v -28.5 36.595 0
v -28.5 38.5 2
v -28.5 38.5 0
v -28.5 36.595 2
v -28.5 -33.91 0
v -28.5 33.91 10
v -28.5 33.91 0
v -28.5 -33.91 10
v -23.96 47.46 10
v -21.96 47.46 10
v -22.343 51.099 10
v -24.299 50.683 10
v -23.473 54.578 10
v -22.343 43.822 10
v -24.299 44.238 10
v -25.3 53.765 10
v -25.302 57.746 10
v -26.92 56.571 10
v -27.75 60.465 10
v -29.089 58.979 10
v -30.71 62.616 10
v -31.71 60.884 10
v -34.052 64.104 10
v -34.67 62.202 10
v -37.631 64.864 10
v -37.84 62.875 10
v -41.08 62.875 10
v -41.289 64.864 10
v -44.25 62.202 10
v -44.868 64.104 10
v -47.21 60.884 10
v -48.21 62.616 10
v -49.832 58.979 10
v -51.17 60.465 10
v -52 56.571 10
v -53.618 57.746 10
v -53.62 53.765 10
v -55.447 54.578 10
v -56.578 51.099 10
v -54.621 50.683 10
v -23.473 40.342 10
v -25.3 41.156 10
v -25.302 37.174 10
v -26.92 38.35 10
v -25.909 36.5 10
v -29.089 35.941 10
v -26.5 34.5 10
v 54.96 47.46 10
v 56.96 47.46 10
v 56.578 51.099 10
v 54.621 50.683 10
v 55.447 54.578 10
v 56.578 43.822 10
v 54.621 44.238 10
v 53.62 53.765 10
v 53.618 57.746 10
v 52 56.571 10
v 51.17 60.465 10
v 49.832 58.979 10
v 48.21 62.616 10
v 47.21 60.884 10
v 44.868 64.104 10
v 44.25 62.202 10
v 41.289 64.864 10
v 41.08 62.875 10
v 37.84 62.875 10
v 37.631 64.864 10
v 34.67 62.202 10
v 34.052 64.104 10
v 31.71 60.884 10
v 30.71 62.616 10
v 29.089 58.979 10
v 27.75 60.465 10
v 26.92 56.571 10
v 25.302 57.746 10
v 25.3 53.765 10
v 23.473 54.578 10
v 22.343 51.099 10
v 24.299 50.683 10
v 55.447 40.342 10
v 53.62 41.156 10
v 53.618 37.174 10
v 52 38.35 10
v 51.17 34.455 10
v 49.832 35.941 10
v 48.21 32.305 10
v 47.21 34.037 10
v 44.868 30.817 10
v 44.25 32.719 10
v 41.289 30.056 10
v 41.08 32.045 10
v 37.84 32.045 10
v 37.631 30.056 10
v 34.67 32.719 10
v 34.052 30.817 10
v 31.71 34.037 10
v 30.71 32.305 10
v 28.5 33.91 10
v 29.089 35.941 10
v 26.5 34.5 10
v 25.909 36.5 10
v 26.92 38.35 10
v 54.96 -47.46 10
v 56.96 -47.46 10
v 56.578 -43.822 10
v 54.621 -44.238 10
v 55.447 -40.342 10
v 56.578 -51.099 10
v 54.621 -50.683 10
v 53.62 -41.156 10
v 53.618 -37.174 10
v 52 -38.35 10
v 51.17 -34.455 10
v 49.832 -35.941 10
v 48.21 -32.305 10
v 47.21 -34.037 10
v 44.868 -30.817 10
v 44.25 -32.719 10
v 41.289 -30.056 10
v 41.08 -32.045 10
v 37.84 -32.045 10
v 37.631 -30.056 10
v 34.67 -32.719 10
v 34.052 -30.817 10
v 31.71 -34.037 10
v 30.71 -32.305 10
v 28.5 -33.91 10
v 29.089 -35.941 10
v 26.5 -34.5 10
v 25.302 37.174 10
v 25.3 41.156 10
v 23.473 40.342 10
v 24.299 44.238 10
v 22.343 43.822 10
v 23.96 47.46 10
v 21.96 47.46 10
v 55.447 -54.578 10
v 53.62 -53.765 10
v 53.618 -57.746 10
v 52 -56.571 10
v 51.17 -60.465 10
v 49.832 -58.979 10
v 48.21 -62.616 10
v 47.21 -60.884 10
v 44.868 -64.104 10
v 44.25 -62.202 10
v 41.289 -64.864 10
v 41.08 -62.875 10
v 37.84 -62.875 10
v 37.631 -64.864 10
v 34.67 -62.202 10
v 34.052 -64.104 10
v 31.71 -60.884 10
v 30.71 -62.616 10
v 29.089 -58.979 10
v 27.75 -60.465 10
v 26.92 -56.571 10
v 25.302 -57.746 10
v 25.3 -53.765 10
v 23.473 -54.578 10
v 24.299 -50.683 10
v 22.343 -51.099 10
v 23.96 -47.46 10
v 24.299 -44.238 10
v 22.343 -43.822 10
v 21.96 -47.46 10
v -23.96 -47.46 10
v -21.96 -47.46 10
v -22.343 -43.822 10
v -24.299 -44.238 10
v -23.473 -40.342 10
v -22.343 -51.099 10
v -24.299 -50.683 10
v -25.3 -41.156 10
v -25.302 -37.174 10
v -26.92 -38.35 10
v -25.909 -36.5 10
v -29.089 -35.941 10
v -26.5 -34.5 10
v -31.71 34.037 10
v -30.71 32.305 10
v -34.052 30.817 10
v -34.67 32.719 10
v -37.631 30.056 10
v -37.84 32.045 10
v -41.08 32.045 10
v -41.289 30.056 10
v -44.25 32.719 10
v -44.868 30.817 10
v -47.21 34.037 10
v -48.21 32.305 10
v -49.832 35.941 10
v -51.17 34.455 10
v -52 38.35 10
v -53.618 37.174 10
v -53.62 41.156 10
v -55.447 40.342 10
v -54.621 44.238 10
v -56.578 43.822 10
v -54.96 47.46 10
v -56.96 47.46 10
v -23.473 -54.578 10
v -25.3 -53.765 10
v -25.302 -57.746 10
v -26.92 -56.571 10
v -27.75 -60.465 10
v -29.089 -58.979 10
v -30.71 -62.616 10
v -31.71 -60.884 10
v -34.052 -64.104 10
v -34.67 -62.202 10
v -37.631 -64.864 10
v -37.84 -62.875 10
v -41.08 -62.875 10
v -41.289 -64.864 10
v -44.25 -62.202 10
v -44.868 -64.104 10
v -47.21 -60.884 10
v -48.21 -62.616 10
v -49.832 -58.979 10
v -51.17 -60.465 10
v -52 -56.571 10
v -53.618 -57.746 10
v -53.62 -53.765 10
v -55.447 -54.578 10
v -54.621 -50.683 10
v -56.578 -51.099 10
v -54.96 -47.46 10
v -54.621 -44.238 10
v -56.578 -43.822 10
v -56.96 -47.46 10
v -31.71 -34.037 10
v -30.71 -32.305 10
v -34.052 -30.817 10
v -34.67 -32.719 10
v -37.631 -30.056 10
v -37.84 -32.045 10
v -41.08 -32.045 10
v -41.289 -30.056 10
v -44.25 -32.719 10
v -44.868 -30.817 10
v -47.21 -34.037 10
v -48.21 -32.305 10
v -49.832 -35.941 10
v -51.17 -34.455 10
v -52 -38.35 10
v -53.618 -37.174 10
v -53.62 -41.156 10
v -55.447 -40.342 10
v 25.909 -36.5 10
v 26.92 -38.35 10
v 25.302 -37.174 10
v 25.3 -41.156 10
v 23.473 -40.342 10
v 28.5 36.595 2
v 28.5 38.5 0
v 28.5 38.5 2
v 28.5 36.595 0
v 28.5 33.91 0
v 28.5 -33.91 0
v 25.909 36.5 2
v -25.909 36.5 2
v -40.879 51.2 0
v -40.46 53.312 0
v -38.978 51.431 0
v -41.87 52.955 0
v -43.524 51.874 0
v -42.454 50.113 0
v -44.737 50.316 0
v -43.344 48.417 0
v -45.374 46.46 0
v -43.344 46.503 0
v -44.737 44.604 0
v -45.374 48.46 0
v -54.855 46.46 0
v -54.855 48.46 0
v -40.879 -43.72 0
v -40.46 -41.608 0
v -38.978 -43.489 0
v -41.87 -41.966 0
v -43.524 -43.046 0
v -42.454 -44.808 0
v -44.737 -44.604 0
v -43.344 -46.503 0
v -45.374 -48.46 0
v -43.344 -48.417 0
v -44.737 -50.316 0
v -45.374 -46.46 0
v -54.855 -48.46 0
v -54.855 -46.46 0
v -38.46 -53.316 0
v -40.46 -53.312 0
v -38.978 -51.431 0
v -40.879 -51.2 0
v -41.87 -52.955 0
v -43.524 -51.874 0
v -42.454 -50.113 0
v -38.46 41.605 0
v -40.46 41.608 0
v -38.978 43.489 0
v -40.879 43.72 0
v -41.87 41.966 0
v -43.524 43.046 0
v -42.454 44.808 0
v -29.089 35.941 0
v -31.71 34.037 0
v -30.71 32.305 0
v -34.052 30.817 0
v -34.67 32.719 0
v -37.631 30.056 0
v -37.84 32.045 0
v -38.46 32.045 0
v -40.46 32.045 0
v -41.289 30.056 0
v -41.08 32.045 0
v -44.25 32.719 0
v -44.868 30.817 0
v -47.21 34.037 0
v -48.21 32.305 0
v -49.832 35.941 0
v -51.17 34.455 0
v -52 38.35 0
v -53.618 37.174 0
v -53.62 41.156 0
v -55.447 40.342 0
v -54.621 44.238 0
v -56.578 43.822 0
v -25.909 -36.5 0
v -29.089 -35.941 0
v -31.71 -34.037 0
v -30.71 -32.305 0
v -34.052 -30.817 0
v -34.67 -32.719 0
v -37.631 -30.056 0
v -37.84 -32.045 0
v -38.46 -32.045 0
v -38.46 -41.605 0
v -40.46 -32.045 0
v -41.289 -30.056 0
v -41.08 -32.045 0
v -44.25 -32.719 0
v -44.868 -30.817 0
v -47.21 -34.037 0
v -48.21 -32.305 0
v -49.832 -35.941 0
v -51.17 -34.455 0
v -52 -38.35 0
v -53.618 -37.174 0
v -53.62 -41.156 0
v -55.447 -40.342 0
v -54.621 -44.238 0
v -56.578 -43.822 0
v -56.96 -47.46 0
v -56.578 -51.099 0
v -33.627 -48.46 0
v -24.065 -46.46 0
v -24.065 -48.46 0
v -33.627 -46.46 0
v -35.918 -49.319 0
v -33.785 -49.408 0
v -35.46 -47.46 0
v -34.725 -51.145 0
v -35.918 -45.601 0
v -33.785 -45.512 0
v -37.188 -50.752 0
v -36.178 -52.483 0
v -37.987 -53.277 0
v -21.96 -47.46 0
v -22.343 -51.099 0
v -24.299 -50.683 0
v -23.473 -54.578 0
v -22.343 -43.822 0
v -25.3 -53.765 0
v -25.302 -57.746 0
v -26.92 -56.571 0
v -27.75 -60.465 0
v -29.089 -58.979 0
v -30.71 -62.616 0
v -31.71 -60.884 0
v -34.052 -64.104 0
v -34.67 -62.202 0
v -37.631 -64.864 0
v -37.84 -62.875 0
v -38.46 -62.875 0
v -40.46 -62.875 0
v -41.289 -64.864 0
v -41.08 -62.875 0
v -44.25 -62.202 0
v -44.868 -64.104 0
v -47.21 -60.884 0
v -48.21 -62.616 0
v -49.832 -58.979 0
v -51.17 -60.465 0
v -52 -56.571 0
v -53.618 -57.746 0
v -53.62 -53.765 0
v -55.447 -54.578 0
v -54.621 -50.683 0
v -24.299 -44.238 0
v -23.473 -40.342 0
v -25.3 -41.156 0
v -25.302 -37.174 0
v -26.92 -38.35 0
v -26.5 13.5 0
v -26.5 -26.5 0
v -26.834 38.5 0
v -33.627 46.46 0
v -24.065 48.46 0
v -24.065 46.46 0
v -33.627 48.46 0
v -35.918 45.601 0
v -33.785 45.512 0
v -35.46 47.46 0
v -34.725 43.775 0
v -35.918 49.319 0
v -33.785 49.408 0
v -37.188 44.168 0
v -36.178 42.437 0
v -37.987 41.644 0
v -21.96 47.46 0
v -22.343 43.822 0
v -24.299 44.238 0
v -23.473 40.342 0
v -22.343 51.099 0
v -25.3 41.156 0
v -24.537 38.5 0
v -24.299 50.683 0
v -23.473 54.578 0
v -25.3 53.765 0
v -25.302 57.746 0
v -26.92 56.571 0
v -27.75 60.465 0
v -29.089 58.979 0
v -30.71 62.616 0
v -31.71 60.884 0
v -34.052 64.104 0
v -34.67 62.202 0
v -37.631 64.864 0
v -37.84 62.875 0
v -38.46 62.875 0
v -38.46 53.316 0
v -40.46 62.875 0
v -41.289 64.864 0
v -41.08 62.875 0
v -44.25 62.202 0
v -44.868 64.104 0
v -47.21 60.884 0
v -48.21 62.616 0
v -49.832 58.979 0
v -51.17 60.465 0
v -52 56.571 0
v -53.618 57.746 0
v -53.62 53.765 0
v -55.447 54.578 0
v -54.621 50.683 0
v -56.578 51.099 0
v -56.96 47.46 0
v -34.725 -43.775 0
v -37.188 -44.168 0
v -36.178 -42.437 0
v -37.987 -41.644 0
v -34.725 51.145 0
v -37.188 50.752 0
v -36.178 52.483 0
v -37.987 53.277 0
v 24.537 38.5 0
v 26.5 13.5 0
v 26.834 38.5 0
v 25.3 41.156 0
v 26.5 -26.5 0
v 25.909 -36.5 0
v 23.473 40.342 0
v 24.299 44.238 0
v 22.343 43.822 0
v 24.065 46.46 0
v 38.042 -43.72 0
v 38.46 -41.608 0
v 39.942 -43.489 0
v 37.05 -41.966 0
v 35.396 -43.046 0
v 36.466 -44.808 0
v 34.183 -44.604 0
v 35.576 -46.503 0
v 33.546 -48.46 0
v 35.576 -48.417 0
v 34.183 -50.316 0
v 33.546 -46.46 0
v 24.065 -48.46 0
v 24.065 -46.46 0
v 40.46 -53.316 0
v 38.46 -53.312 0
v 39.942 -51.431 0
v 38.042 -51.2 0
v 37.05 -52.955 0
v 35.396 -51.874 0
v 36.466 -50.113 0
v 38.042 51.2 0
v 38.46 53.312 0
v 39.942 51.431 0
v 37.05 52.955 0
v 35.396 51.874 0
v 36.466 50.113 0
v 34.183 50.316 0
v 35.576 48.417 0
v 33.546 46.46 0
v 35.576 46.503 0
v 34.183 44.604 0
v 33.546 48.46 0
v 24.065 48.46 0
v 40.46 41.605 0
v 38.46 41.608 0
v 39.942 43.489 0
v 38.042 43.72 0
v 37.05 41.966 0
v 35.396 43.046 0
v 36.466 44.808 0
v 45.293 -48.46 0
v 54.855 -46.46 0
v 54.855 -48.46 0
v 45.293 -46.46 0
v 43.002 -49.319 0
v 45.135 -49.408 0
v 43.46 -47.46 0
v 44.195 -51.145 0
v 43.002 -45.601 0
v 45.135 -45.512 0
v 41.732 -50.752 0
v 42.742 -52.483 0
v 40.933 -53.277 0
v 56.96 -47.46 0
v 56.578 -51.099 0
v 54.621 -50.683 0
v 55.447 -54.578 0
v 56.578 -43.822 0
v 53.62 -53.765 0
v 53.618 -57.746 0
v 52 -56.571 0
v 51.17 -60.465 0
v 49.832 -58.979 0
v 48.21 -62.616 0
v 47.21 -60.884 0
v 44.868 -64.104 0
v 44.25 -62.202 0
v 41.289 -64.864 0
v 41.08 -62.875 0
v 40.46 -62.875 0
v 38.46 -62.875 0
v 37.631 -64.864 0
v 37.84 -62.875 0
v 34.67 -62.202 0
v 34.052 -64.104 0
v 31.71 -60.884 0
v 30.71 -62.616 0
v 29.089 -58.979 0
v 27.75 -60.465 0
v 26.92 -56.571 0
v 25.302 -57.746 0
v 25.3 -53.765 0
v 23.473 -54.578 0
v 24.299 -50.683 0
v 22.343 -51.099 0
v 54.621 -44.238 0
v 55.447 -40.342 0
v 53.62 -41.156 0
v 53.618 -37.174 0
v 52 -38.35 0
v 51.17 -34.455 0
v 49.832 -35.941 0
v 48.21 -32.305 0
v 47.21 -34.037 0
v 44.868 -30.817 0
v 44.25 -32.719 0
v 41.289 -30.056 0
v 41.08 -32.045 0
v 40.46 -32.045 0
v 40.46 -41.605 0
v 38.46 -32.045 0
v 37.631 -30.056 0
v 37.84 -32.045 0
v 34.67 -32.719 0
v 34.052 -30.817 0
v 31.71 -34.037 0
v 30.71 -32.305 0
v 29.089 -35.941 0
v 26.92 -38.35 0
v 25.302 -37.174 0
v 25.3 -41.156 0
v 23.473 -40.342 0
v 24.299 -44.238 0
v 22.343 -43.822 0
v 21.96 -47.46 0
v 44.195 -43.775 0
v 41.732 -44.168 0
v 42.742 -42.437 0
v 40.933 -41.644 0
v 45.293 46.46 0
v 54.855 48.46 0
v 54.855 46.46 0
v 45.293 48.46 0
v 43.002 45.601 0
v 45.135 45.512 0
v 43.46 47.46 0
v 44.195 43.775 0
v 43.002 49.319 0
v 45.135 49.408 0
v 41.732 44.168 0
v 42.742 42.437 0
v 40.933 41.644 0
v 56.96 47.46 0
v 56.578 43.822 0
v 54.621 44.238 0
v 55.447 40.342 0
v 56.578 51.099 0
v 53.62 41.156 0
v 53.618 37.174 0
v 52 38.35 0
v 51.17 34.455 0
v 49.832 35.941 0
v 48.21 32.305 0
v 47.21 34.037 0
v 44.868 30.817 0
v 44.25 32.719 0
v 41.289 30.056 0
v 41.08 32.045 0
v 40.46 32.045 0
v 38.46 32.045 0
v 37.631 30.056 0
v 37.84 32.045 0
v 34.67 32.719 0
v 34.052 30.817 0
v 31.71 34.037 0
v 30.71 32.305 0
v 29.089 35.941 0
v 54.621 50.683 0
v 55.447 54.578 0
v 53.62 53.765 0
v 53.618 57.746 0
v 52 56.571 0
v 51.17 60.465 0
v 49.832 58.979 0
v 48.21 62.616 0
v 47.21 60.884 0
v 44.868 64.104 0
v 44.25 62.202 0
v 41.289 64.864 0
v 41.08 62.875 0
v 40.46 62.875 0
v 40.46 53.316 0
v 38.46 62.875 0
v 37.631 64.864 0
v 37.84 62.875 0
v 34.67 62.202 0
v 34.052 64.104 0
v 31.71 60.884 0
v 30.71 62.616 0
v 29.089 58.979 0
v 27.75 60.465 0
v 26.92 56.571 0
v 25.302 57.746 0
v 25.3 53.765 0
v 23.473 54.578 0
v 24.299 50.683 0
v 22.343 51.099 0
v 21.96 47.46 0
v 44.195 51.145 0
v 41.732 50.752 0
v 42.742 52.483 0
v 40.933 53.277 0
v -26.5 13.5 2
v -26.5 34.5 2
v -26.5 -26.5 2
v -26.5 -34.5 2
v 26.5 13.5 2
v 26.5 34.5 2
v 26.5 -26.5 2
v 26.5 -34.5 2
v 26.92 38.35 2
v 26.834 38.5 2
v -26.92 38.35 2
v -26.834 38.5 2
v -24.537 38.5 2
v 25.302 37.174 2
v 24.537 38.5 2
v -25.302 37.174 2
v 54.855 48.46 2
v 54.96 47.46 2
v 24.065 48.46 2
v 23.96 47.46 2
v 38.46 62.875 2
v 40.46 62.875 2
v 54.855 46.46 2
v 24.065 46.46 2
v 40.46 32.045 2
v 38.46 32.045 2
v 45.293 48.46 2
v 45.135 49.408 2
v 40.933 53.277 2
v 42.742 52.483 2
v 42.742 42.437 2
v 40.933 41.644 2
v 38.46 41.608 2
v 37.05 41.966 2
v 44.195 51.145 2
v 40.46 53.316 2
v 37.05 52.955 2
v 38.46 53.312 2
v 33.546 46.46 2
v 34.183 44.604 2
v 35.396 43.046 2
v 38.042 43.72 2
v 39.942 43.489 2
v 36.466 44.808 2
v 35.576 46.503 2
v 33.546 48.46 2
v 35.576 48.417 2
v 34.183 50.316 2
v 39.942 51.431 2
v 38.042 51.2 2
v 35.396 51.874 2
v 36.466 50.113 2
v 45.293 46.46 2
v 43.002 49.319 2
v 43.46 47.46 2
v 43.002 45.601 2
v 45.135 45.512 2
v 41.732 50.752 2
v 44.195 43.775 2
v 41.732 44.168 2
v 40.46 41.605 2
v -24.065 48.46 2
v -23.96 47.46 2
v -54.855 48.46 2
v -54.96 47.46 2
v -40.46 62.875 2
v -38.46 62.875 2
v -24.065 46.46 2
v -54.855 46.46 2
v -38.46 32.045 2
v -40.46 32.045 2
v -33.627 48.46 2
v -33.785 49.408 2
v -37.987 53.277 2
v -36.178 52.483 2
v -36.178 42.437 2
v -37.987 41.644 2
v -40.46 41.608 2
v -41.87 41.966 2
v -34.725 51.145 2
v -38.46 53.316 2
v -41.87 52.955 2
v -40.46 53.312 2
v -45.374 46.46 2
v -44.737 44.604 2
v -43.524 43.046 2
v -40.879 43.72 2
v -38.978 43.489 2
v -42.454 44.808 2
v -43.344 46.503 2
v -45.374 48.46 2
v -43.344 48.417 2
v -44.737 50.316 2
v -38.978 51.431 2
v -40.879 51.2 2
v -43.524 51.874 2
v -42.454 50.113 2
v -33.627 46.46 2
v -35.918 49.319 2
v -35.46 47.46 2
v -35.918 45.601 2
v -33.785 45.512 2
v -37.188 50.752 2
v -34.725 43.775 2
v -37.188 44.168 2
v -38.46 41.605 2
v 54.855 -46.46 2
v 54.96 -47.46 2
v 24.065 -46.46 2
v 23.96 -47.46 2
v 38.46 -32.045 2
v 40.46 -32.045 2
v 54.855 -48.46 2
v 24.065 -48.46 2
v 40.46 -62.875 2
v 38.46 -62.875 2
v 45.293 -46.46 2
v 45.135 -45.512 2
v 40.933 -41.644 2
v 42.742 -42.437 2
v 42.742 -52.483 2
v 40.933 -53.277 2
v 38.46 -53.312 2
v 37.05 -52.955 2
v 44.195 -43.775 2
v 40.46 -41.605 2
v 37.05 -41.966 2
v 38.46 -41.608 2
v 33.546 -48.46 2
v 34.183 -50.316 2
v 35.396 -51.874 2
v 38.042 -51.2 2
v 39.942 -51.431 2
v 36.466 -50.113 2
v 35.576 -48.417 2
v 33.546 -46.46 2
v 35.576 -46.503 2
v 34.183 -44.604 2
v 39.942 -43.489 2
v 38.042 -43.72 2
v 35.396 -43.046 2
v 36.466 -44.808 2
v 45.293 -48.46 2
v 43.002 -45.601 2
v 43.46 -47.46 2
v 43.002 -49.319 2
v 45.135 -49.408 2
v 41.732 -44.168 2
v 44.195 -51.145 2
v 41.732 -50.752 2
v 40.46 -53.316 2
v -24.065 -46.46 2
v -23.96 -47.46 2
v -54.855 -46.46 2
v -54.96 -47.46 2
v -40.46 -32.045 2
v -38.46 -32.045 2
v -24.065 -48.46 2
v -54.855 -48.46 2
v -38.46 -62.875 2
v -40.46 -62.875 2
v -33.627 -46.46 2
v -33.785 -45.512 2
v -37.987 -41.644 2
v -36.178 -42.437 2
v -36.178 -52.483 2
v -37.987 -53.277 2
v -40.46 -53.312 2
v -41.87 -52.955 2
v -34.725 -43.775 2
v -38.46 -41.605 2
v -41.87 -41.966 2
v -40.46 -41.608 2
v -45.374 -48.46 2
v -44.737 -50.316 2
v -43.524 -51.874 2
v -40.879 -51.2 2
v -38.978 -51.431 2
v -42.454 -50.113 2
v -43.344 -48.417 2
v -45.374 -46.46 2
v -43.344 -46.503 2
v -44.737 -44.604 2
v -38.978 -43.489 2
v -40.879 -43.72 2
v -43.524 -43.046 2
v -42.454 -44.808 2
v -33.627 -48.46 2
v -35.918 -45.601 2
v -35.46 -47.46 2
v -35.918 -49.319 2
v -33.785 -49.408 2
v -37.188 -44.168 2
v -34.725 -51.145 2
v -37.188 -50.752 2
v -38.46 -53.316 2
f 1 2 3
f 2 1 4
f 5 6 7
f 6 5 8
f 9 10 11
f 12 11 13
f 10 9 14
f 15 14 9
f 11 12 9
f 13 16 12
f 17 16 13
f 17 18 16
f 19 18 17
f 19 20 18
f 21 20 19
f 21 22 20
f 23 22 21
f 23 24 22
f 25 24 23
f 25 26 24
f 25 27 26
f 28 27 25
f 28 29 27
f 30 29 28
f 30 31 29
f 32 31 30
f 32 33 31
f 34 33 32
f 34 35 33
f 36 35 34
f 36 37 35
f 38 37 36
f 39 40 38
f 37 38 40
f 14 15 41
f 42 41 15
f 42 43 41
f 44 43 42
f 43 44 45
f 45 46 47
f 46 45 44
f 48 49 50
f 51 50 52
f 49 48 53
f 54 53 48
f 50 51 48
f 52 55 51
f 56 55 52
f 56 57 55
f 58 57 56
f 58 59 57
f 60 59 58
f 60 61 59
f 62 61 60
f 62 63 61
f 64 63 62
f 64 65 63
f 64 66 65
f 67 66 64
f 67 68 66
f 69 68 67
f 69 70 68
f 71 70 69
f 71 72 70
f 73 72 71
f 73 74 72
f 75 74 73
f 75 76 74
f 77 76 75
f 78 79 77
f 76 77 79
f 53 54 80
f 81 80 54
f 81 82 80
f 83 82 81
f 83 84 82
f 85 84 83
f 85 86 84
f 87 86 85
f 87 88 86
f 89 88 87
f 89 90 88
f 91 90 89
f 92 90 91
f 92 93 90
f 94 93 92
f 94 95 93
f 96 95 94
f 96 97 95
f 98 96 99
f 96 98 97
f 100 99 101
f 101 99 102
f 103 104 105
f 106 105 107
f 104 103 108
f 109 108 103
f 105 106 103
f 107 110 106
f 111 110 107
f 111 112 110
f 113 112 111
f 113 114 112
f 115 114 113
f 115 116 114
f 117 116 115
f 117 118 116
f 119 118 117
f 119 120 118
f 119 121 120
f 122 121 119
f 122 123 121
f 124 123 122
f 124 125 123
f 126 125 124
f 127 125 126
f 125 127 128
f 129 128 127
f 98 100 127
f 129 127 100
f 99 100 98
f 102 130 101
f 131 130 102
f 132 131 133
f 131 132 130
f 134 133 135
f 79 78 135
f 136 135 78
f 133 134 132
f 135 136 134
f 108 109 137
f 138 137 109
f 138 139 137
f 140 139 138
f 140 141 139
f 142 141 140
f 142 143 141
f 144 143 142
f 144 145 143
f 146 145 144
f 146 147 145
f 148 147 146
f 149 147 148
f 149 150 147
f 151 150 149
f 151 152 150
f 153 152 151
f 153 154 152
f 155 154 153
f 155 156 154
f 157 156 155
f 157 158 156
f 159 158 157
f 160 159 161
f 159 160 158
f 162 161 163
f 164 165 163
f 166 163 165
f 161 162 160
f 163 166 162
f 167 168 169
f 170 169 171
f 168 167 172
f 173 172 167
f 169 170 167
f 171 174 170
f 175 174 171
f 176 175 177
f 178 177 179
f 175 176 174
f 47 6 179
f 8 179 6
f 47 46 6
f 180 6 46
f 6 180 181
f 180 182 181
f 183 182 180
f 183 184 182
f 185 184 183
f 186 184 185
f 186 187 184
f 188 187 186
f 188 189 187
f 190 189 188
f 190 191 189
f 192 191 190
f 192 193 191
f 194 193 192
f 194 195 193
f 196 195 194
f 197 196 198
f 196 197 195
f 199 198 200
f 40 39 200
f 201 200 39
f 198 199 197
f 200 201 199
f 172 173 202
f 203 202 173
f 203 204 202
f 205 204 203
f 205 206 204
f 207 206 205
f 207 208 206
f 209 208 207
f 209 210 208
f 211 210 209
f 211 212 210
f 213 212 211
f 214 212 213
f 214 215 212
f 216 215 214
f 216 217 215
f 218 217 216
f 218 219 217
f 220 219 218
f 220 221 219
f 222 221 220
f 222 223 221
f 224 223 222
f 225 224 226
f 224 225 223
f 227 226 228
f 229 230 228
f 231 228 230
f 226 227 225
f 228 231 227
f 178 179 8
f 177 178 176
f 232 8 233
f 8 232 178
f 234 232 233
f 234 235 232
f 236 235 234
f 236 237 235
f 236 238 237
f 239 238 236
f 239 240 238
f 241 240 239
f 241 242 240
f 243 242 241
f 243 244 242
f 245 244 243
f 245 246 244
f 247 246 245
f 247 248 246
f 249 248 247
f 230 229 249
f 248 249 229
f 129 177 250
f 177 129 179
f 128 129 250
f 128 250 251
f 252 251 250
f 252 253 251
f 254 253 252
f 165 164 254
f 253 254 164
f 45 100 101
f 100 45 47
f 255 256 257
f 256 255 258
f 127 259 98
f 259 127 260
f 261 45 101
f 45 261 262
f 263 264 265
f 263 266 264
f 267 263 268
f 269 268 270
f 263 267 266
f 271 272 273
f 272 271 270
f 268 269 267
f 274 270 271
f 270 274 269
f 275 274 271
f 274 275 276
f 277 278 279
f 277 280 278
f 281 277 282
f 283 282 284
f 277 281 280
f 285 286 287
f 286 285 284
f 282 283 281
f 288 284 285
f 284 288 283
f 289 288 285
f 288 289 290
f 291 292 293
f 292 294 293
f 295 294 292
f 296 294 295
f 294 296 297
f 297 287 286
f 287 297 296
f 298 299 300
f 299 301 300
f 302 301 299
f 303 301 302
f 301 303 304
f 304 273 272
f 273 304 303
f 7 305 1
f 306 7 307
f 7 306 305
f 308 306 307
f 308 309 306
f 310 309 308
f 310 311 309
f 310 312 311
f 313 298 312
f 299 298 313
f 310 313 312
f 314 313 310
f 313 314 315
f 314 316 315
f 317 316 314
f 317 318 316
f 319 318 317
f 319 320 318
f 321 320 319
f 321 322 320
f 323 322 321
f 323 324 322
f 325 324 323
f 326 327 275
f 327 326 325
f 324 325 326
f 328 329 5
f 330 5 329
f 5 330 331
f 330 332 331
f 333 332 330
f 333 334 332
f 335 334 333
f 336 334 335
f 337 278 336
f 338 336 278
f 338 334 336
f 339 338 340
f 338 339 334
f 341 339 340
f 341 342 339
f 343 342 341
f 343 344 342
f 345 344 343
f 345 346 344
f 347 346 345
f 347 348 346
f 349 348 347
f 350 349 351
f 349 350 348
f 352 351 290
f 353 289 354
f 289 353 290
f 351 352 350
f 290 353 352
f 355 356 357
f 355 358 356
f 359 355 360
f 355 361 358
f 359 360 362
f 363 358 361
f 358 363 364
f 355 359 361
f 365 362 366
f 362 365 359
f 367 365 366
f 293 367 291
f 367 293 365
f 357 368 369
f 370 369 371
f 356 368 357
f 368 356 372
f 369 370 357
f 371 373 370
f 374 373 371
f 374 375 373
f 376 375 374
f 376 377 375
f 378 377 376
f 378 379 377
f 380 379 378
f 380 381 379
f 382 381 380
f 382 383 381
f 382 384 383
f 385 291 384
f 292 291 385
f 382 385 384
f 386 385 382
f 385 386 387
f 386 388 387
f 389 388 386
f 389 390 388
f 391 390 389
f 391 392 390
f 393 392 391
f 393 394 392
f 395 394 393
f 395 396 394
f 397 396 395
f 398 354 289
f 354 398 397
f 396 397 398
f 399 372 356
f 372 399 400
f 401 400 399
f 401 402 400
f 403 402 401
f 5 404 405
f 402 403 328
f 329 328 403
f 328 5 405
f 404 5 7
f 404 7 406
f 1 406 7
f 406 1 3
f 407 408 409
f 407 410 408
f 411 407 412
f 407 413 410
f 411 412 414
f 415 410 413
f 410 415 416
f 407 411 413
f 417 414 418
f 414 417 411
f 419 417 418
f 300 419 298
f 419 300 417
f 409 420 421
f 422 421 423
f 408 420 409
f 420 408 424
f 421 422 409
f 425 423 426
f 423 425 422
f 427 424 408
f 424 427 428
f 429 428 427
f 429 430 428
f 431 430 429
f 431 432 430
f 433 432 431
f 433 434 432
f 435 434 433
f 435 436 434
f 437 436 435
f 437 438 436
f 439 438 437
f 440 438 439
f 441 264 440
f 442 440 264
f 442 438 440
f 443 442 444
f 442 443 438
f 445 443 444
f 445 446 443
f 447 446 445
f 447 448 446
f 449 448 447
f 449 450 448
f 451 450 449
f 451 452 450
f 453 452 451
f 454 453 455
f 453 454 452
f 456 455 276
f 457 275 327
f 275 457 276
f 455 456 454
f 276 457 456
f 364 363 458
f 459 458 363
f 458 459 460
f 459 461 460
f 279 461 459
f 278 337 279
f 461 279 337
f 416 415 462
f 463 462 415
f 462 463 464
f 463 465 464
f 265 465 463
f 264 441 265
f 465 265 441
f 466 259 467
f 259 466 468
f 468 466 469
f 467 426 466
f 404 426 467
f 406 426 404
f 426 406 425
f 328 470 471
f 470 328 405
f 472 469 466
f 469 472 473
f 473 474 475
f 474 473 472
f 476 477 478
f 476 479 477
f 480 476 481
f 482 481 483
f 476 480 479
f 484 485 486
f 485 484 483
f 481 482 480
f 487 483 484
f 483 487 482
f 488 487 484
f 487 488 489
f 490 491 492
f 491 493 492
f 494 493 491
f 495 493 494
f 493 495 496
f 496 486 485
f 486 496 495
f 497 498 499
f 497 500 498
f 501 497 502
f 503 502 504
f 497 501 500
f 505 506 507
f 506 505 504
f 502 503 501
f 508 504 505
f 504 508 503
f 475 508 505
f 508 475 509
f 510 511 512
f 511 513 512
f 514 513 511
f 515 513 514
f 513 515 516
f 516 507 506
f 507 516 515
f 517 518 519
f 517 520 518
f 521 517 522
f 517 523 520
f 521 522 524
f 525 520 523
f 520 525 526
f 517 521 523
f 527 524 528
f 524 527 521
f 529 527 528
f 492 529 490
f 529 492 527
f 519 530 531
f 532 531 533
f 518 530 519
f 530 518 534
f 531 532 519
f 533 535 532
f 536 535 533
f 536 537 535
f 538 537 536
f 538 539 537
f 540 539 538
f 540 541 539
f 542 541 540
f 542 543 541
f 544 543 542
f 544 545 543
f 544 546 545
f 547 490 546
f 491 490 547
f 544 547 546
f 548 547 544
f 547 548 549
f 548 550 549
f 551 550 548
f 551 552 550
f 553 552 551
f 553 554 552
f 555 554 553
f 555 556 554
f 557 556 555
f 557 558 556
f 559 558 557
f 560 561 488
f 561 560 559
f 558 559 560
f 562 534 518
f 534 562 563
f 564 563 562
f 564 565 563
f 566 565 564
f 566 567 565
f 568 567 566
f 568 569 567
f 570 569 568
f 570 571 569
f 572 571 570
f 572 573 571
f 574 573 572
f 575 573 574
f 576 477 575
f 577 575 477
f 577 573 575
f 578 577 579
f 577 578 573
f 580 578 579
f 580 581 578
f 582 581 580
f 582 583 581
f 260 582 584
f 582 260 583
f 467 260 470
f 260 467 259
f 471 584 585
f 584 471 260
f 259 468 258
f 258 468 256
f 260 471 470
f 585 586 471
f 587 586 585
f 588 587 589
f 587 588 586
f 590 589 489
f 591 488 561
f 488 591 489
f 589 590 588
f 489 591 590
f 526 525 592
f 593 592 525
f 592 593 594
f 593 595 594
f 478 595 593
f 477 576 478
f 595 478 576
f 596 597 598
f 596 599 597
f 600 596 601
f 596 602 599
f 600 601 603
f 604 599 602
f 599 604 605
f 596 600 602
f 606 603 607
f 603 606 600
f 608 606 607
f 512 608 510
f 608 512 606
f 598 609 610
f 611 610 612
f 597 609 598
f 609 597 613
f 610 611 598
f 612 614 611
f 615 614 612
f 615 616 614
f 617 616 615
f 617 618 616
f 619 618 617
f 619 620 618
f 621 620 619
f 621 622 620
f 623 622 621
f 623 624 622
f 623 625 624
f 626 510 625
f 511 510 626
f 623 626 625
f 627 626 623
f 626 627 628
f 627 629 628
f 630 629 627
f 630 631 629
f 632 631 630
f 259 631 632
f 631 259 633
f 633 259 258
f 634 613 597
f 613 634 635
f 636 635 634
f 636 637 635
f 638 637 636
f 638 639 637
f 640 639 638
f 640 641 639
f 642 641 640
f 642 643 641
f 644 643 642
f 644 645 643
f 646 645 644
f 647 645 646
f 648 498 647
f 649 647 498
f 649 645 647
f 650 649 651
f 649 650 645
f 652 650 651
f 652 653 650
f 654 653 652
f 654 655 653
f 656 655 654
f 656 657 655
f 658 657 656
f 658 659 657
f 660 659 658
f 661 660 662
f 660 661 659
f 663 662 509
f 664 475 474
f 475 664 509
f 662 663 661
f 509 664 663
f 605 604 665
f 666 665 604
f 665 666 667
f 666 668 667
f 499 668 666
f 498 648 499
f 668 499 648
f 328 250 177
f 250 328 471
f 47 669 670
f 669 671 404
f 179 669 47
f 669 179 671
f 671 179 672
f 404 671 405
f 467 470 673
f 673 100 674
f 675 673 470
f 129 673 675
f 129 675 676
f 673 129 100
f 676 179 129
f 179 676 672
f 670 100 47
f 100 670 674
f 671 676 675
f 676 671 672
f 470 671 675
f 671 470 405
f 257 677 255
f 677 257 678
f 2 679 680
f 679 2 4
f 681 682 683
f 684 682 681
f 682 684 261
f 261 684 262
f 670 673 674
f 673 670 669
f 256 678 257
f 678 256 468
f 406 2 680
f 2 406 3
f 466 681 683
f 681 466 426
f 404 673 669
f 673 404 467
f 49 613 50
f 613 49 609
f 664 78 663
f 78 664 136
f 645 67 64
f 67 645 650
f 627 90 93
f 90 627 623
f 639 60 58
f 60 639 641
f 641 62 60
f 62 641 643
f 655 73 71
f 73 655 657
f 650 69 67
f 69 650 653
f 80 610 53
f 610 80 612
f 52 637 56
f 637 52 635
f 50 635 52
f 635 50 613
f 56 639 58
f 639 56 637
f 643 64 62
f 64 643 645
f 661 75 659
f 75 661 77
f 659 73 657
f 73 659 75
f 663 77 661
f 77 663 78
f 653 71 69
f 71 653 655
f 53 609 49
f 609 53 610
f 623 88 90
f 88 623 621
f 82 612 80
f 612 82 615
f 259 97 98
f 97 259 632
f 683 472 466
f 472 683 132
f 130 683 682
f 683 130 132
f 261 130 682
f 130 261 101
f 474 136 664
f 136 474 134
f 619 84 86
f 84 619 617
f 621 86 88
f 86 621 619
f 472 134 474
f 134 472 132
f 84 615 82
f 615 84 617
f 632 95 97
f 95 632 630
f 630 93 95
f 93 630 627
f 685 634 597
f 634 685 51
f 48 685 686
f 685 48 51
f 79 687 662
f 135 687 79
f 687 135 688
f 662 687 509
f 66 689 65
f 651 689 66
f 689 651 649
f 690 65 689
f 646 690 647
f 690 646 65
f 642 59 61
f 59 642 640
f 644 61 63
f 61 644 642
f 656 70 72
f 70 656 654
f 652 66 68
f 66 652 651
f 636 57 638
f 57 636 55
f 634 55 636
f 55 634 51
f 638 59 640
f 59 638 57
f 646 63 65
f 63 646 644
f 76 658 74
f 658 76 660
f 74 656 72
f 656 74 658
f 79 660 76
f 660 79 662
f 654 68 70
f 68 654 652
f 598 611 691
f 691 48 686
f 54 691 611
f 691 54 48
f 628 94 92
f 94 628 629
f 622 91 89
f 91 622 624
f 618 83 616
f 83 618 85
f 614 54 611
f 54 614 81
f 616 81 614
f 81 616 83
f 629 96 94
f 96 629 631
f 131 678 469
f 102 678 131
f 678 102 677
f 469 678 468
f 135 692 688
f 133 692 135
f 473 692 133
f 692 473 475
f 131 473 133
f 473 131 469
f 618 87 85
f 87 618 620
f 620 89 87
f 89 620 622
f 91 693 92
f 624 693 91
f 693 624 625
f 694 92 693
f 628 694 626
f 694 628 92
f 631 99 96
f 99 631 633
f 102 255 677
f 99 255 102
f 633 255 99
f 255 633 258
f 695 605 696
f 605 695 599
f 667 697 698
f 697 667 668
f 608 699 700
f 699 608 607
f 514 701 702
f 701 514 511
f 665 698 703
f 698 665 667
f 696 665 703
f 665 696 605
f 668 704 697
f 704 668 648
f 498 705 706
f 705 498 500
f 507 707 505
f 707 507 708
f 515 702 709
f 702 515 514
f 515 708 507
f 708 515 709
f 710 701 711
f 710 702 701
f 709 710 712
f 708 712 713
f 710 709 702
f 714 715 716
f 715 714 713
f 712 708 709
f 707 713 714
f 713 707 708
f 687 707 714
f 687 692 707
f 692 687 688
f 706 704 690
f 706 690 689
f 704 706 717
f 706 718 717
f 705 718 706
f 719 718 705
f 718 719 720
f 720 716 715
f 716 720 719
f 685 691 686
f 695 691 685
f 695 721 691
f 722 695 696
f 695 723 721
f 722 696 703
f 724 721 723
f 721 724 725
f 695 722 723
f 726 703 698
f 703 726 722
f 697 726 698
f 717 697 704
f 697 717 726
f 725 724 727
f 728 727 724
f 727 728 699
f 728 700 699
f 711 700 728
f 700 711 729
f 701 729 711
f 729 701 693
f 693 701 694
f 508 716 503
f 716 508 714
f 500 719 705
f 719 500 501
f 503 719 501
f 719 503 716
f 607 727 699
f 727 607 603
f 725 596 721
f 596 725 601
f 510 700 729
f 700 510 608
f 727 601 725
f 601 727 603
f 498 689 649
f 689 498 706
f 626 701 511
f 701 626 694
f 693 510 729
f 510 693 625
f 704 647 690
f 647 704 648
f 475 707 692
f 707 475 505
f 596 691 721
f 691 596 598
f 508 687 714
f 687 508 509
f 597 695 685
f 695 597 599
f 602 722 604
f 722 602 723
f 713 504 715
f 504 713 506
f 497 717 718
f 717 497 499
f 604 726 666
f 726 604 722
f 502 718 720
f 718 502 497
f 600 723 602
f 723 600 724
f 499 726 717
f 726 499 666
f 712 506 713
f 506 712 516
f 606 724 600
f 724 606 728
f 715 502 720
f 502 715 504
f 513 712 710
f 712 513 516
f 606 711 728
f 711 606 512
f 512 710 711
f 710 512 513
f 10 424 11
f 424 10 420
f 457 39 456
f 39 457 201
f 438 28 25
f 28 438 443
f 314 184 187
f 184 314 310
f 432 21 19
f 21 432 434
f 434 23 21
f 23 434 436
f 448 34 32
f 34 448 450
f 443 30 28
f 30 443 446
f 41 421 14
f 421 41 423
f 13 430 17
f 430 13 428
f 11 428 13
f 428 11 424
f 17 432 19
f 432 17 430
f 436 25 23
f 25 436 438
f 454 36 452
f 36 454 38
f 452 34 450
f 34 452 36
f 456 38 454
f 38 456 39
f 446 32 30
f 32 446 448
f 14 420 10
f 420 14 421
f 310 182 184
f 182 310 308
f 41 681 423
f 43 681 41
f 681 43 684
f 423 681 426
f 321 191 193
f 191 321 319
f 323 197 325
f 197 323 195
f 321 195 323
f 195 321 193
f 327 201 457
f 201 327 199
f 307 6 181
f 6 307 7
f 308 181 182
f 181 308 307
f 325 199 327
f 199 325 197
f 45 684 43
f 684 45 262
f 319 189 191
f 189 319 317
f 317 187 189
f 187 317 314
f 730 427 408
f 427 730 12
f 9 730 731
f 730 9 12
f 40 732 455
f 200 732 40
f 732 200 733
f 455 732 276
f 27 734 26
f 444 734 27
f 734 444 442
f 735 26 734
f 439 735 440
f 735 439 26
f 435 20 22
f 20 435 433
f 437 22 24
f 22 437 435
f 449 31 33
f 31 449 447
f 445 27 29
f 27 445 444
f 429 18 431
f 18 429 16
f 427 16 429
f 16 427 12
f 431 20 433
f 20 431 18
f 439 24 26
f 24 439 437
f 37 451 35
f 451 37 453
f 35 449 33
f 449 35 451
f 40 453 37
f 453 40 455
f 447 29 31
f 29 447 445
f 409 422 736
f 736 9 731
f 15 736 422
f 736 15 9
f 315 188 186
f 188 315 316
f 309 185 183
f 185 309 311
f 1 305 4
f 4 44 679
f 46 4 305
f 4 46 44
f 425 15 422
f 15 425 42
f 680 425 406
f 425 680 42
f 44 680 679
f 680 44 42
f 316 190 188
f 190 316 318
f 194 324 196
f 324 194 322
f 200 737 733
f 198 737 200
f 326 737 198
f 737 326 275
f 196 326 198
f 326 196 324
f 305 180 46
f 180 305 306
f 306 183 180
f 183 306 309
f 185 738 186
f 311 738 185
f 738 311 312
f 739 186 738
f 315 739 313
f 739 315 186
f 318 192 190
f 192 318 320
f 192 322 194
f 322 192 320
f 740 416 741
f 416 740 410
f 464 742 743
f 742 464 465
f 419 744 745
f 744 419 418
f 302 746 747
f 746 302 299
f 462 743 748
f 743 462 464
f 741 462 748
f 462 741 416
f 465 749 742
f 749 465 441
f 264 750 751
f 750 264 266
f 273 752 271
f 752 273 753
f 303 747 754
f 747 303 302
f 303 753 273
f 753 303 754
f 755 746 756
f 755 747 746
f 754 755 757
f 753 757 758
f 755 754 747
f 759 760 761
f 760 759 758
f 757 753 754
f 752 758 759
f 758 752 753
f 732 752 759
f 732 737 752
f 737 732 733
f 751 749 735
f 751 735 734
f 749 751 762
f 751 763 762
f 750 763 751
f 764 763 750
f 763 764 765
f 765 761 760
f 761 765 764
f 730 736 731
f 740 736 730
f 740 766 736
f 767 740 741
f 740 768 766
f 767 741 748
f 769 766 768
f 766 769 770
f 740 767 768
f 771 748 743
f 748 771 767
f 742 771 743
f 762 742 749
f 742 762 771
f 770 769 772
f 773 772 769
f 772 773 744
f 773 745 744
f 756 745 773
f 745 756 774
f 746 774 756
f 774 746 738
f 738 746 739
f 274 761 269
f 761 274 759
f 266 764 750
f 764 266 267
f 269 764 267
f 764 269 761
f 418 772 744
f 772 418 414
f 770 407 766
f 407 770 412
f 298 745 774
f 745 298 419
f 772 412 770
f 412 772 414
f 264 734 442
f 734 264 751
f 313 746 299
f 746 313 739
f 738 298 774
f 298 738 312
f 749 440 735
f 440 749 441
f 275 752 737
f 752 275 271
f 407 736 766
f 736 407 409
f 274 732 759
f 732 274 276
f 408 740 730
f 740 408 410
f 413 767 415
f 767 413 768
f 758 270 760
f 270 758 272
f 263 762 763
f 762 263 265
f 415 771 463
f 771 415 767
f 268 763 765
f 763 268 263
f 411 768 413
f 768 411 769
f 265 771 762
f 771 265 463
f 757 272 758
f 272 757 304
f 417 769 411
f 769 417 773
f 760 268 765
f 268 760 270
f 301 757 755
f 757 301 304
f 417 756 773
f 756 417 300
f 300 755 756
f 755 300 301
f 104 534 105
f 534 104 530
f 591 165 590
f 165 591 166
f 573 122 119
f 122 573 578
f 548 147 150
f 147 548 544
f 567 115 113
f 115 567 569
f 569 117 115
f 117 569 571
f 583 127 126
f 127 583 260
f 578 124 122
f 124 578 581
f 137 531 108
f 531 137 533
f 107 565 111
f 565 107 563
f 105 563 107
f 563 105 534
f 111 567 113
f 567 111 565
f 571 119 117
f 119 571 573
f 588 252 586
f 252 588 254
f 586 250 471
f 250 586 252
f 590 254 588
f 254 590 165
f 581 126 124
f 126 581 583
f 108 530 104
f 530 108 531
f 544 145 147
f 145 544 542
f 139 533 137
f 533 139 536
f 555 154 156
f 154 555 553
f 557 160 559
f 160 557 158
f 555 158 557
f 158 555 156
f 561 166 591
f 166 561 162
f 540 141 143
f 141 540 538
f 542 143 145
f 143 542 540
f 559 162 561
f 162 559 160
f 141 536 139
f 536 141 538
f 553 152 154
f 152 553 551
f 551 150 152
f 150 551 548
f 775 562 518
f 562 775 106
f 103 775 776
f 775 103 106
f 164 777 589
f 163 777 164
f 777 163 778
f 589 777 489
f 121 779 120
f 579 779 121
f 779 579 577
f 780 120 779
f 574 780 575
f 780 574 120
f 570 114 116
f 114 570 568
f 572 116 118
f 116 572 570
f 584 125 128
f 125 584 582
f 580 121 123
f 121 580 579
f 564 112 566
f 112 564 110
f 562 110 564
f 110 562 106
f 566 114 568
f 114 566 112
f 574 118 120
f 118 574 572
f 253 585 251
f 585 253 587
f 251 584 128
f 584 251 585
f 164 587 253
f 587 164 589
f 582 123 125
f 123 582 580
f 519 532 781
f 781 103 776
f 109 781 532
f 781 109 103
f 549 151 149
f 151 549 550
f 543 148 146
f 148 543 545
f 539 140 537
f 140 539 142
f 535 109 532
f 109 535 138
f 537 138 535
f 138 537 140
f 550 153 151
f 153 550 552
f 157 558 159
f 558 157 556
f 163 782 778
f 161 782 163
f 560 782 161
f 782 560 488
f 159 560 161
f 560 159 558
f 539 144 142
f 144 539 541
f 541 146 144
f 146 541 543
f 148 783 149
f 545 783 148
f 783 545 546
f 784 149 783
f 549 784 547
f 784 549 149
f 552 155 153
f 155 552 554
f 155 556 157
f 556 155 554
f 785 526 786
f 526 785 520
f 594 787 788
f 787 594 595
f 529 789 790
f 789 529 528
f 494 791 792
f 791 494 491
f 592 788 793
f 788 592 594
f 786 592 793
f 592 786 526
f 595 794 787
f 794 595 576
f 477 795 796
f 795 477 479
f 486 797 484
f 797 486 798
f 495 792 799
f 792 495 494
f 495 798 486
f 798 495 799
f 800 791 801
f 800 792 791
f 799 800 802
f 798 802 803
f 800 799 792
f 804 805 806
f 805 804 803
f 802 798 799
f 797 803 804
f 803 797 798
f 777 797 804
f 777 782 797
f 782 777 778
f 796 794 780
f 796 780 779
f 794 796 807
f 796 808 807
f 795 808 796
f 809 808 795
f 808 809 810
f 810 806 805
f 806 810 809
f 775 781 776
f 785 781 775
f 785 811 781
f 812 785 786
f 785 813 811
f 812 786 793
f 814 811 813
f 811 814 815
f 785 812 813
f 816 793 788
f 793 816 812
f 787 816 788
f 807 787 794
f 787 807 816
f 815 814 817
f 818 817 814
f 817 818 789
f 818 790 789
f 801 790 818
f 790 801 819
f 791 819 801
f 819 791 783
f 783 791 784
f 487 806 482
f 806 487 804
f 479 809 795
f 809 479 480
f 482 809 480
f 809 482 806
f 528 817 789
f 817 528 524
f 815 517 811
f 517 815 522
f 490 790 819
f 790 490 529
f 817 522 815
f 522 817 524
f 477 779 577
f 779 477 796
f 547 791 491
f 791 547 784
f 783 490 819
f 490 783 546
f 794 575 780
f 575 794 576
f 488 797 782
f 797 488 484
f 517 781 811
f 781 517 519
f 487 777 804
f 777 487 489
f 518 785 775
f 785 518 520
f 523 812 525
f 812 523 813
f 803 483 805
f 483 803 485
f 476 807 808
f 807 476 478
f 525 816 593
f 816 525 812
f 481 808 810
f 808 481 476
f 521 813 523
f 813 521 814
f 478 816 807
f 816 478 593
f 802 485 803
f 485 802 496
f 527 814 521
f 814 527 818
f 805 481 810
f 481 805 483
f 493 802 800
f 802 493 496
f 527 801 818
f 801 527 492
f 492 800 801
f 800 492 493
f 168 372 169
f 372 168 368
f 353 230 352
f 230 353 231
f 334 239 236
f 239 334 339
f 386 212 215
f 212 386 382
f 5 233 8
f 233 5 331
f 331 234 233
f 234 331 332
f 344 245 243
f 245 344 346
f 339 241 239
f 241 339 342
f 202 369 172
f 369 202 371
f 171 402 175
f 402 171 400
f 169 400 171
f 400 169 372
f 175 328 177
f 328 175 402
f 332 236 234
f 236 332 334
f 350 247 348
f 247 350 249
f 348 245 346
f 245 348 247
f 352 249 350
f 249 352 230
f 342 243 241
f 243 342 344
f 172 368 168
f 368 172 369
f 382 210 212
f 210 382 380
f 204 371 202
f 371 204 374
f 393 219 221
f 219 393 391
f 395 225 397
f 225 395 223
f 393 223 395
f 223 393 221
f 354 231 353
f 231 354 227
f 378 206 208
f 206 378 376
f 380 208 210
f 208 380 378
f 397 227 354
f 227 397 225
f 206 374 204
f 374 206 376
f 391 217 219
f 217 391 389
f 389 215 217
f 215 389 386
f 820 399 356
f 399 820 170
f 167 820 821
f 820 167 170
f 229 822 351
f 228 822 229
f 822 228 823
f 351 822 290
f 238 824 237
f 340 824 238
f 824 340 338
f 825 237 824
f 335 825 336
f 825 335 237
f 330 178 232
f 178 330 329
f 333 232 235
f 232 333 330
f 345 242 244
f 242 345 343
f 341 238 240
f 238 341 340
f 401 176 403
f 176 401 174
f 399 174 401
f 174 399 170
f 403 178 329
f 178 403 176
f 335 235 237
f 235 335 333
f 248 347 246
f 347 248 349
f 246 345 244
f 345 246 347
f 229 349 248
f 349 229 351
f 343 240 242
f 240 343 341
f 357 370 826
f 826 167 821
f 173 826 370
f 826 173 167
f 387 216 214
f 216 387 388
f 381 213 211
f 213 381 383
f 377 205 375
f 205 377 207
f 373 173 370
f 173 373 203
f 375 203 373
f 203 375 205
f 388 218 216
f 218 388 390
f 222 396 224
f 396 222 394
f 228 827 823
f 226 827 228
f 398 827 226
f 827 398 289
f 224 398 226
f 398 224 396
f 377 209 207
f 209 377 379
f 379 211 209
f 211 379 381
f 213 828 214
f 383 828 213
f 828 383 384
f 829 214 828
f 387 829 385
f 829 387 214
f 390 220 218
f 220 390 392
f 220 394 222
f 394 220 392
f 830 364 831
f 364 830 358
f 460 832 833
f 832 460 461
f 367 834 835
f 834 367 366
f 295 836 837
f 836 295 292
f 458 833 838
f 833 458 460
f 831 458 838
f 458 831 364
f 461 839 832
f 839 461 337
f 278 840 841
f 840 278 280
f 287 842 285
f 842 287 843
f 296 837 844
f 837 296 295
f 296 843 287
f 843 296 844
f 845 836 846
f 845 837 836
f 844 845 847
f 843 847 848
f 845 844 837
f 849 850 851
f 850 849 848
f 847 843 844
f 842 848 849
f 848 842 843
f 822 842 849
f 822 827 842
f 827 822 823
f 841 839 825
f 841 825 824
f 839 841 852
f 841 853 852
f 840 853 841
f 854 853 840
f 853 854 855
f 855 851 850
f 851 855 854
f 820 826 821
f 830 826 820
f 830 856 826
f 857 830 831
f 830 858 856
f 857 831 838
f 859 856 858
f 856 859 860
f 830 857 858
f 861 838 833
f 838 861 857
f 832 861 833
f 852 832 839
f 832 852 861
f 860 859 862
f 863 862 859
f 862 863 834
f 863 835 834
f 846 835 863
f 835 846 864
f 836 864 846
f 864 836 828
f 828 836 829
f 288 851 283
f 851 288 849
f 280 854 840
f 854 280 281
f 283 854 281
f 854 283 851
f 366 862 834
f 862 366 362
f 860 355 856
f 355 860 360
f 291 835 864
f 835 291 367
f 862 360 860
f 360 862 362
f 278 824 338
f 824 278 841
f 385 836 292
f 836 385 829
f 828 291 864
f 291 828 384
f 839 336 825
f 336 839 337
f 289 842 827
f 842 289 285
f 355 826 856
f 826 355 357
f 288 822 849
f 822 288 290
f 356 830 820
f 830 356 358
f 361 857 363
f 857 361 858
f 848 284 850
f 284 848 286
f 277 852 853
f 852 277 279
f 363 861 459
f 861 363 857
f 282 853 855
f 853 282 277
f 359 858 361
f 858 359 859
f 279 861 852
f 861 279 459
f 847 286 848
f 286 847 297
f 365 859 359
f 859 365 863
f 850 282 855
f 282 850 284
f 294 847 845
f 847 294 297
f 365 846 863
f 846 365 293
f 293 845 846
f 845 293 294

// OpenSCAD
DIAMETER_PROPELLER = 31;
DIAMETER_MOTOR = 8;
LAUNCHPAD_WIDTH = 53;
LAUNCHPAD_DEPTH = 69;
THICKNESS = 2;
HEIGHT = 10;

module propellerProtection(){
	/* general height */
	h0 = HEIGHT;
	/* propeller diameter */
	d0 = DIAMETER_PROPELLER;
	/* propeller diameter with border */
	d1 = DIAMETER_PROPELLER + (2 * THICKNESS);
	/* motor diameter */
	d2 = DIAMETER_MOTOR;
	/* motor diameter with border */
	d3 = DIAMETER_MOTOR + (2 * THICKNESS);
	/* thickness */
	t0 = THICKNESS;

	union(){
		difference(){
			cylinder(h = h0, d = d1, center = false);
			cylinder(h = h0, d = d0, center = false);
		}
		difference(){
			union(){
				cylinder(h = t0, d = d3, center = false);
				translate([- t0 / 2, - d0 / 2, 0])
					cube([t0, d0, t0], center = false);
				translate([- d0 / 2, - t0 / 2, 0])
					cube([d0, t0, t0], center = false);
			}
			cylinder(h = t0, d = d2, center = false);
		}
	}
}

module launchpadSupport(model){
	if(model == "tiva-c"){
		/* general height */
		h0 = HEIGHT;
		/* launchpad width */
		w0 = LAUNCHPAD_WIDTH;
		/* launchpad width with border */
		w1 = LAUNCHPAD_WIDTH + (2 * THICKNESS);
		/* launchpad depth */
		d0 = LAUNCHPAD_DEPTH;
		/* launchpad depth with border */
		d1 = LAUNCHPAD_DEPTH + (2 * THICKNESS);
		/* thickness */
		t0 = THICKNESS;

		union(){
			difference(){
				cube([w1, d1, h0]);
				translate([t0, t0, 0])
					cube([w0, d0, h0]);
			}
			cube([w1, 10, t0]);
			translate([0, 50, 0])
				// magic number = depth + (2 * THICKNESS) - 50
				cube([w1, 25, t0]);
		}
	}
}

module finalDraw(){
	/* propeller radius */
	r0 = DIAMETER_PROPELLER / 2;
	/* launchpad support x translation */
	x0 = (LAUNCHPAD_WIDTH / 2) + THICKNESS;
	/* launchpad support y translation */
	y0 = (LAUNCHPAD_DEPTH / 2) + THICKNESS;
	/* propeller offset */
	o0 = r0 / sqrt(2);

	translate([- x0, - y0, 0]) launchpadSupport("tiva-c");
	translate([x0 + o0, y0 + o0, 0]) propellerProtection();
	translate([- x0 - o0, y0 + o0, 0]) propellerProtection();
	translate([x0 + o0, - y0 - o0, 0]) propellerProtection();
	translate([- x0 - o0, - y0 - o0, 0]) propellerProtection();
}

//propellerProtection();
//launchpadSupport("tiva-c");
finalDraw();
